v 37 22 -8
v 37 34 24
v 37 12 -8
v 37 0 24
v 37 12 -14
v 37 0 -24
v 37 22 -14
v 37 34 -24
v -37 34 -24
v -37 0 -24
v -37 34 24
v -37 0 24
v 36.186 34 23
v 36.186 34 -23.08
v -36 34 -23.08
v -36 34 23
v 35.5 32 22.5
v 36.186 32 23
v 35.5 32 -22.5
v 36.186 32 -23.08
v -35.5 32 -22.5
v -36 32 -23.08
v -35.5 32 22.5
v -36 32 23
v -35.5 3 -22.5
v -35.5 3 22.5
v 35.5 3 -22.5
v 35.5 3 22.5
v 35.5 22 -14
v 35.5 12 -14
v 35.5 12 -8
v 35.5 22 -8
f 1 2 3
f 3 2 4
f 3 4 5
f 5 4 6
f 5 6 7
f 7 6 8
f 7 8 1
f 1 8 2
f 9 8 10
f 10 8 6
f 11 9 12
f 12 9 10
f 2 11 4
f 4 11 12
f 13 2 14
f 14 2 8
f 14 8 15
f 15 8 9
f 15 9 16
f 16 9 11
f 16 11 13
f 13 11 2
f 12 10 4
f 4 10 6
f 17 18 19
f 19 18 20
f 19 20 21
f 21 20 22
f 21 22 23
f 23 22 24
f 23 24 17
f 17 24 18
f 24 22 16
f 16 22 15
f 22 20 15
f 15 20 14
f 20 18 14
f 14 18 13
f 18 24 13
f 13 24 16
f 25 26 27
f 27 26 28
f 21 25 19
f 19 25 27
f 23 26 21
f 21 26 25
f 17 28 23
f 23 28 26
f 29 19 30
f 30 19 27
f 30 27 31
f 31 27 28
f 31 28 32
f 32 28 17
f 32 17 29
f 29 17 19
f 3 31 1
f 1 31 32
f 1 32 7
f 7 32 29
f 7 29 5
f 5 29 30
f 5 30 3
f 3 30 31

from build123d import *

# Parameters (mm, degrees)
SKETCH1_W           = 74
SKETCH1_H           = 48
BOSS_EXTRUDE1_DEPTH = 34
SKETCH3_W           = 71
SKETCH3_H           = 45
CUT_EXTRUDE1_DEPTH  = 31
SKETCH4_W           = 72.185535561
SKETCH4_H           = 46.080093343
CUT_EXTRUDE2_DEPTH  = 2
SKETCH5_W           = 6
SKETCH5_H           = 10
CUT_EXTRUDE3_DEPTH  = 5


with BuildPart() as part:
    # Sketch1 → Boss-Extrude1 (new body)
    with BuildSketch(Plane(origin=(0, 0, 0), x_dir=(1, 0, 0), z_dir=(0, 1, 0))):
        Rectangle(SKETCH1_W, SKETCH1_H)
    extrude(amount=BOSS_EXTRUDE1_DEPTH)

    # Sketch3 → Cut-Extrude1 (cut)
    with BuildSketch(Plane(origin=(0, 34, 0), x_dir=(1, 0, 0), z_dir=(0, 1, 0))):
        Rectangle(SKETCH3_W, SKETCH3_H)
    extrude(amount=-CUT_EXTRUDE1_DEPTH, mode=Mode.SUBTRACT)

    # Sketch4 → Cut-Extrude2 (cut)
    with BuildSketch(Plane(origin=(0, 34, 0), x_dir=(1, 0, 0), z_dir=(0, 1, 0))):
        with Locations((0.092767781, 0.040046672)):
            Rectangle(SKETCH4_W, SKETCH4_H)
    extrude(amount=-CUT_EXTRUDE2_DEPTH, mode=Mode.SUBTRACT)

    # Sketch5 → Cut-Extrude3 (cut)
    with BuildSketch(Plane(origin=(37, 0, 0), x_dir=(0, 0, -1), z_dir=(1, 0, 0))):
        with Locations((11, 17)):
            Rectangle(SKETCH5_W, SKETCH5_H)
    extrude(amount=-CUT_EXTRUDE3_DEPTH, mode=Mode.SUBTRACT)


solid = part.part
